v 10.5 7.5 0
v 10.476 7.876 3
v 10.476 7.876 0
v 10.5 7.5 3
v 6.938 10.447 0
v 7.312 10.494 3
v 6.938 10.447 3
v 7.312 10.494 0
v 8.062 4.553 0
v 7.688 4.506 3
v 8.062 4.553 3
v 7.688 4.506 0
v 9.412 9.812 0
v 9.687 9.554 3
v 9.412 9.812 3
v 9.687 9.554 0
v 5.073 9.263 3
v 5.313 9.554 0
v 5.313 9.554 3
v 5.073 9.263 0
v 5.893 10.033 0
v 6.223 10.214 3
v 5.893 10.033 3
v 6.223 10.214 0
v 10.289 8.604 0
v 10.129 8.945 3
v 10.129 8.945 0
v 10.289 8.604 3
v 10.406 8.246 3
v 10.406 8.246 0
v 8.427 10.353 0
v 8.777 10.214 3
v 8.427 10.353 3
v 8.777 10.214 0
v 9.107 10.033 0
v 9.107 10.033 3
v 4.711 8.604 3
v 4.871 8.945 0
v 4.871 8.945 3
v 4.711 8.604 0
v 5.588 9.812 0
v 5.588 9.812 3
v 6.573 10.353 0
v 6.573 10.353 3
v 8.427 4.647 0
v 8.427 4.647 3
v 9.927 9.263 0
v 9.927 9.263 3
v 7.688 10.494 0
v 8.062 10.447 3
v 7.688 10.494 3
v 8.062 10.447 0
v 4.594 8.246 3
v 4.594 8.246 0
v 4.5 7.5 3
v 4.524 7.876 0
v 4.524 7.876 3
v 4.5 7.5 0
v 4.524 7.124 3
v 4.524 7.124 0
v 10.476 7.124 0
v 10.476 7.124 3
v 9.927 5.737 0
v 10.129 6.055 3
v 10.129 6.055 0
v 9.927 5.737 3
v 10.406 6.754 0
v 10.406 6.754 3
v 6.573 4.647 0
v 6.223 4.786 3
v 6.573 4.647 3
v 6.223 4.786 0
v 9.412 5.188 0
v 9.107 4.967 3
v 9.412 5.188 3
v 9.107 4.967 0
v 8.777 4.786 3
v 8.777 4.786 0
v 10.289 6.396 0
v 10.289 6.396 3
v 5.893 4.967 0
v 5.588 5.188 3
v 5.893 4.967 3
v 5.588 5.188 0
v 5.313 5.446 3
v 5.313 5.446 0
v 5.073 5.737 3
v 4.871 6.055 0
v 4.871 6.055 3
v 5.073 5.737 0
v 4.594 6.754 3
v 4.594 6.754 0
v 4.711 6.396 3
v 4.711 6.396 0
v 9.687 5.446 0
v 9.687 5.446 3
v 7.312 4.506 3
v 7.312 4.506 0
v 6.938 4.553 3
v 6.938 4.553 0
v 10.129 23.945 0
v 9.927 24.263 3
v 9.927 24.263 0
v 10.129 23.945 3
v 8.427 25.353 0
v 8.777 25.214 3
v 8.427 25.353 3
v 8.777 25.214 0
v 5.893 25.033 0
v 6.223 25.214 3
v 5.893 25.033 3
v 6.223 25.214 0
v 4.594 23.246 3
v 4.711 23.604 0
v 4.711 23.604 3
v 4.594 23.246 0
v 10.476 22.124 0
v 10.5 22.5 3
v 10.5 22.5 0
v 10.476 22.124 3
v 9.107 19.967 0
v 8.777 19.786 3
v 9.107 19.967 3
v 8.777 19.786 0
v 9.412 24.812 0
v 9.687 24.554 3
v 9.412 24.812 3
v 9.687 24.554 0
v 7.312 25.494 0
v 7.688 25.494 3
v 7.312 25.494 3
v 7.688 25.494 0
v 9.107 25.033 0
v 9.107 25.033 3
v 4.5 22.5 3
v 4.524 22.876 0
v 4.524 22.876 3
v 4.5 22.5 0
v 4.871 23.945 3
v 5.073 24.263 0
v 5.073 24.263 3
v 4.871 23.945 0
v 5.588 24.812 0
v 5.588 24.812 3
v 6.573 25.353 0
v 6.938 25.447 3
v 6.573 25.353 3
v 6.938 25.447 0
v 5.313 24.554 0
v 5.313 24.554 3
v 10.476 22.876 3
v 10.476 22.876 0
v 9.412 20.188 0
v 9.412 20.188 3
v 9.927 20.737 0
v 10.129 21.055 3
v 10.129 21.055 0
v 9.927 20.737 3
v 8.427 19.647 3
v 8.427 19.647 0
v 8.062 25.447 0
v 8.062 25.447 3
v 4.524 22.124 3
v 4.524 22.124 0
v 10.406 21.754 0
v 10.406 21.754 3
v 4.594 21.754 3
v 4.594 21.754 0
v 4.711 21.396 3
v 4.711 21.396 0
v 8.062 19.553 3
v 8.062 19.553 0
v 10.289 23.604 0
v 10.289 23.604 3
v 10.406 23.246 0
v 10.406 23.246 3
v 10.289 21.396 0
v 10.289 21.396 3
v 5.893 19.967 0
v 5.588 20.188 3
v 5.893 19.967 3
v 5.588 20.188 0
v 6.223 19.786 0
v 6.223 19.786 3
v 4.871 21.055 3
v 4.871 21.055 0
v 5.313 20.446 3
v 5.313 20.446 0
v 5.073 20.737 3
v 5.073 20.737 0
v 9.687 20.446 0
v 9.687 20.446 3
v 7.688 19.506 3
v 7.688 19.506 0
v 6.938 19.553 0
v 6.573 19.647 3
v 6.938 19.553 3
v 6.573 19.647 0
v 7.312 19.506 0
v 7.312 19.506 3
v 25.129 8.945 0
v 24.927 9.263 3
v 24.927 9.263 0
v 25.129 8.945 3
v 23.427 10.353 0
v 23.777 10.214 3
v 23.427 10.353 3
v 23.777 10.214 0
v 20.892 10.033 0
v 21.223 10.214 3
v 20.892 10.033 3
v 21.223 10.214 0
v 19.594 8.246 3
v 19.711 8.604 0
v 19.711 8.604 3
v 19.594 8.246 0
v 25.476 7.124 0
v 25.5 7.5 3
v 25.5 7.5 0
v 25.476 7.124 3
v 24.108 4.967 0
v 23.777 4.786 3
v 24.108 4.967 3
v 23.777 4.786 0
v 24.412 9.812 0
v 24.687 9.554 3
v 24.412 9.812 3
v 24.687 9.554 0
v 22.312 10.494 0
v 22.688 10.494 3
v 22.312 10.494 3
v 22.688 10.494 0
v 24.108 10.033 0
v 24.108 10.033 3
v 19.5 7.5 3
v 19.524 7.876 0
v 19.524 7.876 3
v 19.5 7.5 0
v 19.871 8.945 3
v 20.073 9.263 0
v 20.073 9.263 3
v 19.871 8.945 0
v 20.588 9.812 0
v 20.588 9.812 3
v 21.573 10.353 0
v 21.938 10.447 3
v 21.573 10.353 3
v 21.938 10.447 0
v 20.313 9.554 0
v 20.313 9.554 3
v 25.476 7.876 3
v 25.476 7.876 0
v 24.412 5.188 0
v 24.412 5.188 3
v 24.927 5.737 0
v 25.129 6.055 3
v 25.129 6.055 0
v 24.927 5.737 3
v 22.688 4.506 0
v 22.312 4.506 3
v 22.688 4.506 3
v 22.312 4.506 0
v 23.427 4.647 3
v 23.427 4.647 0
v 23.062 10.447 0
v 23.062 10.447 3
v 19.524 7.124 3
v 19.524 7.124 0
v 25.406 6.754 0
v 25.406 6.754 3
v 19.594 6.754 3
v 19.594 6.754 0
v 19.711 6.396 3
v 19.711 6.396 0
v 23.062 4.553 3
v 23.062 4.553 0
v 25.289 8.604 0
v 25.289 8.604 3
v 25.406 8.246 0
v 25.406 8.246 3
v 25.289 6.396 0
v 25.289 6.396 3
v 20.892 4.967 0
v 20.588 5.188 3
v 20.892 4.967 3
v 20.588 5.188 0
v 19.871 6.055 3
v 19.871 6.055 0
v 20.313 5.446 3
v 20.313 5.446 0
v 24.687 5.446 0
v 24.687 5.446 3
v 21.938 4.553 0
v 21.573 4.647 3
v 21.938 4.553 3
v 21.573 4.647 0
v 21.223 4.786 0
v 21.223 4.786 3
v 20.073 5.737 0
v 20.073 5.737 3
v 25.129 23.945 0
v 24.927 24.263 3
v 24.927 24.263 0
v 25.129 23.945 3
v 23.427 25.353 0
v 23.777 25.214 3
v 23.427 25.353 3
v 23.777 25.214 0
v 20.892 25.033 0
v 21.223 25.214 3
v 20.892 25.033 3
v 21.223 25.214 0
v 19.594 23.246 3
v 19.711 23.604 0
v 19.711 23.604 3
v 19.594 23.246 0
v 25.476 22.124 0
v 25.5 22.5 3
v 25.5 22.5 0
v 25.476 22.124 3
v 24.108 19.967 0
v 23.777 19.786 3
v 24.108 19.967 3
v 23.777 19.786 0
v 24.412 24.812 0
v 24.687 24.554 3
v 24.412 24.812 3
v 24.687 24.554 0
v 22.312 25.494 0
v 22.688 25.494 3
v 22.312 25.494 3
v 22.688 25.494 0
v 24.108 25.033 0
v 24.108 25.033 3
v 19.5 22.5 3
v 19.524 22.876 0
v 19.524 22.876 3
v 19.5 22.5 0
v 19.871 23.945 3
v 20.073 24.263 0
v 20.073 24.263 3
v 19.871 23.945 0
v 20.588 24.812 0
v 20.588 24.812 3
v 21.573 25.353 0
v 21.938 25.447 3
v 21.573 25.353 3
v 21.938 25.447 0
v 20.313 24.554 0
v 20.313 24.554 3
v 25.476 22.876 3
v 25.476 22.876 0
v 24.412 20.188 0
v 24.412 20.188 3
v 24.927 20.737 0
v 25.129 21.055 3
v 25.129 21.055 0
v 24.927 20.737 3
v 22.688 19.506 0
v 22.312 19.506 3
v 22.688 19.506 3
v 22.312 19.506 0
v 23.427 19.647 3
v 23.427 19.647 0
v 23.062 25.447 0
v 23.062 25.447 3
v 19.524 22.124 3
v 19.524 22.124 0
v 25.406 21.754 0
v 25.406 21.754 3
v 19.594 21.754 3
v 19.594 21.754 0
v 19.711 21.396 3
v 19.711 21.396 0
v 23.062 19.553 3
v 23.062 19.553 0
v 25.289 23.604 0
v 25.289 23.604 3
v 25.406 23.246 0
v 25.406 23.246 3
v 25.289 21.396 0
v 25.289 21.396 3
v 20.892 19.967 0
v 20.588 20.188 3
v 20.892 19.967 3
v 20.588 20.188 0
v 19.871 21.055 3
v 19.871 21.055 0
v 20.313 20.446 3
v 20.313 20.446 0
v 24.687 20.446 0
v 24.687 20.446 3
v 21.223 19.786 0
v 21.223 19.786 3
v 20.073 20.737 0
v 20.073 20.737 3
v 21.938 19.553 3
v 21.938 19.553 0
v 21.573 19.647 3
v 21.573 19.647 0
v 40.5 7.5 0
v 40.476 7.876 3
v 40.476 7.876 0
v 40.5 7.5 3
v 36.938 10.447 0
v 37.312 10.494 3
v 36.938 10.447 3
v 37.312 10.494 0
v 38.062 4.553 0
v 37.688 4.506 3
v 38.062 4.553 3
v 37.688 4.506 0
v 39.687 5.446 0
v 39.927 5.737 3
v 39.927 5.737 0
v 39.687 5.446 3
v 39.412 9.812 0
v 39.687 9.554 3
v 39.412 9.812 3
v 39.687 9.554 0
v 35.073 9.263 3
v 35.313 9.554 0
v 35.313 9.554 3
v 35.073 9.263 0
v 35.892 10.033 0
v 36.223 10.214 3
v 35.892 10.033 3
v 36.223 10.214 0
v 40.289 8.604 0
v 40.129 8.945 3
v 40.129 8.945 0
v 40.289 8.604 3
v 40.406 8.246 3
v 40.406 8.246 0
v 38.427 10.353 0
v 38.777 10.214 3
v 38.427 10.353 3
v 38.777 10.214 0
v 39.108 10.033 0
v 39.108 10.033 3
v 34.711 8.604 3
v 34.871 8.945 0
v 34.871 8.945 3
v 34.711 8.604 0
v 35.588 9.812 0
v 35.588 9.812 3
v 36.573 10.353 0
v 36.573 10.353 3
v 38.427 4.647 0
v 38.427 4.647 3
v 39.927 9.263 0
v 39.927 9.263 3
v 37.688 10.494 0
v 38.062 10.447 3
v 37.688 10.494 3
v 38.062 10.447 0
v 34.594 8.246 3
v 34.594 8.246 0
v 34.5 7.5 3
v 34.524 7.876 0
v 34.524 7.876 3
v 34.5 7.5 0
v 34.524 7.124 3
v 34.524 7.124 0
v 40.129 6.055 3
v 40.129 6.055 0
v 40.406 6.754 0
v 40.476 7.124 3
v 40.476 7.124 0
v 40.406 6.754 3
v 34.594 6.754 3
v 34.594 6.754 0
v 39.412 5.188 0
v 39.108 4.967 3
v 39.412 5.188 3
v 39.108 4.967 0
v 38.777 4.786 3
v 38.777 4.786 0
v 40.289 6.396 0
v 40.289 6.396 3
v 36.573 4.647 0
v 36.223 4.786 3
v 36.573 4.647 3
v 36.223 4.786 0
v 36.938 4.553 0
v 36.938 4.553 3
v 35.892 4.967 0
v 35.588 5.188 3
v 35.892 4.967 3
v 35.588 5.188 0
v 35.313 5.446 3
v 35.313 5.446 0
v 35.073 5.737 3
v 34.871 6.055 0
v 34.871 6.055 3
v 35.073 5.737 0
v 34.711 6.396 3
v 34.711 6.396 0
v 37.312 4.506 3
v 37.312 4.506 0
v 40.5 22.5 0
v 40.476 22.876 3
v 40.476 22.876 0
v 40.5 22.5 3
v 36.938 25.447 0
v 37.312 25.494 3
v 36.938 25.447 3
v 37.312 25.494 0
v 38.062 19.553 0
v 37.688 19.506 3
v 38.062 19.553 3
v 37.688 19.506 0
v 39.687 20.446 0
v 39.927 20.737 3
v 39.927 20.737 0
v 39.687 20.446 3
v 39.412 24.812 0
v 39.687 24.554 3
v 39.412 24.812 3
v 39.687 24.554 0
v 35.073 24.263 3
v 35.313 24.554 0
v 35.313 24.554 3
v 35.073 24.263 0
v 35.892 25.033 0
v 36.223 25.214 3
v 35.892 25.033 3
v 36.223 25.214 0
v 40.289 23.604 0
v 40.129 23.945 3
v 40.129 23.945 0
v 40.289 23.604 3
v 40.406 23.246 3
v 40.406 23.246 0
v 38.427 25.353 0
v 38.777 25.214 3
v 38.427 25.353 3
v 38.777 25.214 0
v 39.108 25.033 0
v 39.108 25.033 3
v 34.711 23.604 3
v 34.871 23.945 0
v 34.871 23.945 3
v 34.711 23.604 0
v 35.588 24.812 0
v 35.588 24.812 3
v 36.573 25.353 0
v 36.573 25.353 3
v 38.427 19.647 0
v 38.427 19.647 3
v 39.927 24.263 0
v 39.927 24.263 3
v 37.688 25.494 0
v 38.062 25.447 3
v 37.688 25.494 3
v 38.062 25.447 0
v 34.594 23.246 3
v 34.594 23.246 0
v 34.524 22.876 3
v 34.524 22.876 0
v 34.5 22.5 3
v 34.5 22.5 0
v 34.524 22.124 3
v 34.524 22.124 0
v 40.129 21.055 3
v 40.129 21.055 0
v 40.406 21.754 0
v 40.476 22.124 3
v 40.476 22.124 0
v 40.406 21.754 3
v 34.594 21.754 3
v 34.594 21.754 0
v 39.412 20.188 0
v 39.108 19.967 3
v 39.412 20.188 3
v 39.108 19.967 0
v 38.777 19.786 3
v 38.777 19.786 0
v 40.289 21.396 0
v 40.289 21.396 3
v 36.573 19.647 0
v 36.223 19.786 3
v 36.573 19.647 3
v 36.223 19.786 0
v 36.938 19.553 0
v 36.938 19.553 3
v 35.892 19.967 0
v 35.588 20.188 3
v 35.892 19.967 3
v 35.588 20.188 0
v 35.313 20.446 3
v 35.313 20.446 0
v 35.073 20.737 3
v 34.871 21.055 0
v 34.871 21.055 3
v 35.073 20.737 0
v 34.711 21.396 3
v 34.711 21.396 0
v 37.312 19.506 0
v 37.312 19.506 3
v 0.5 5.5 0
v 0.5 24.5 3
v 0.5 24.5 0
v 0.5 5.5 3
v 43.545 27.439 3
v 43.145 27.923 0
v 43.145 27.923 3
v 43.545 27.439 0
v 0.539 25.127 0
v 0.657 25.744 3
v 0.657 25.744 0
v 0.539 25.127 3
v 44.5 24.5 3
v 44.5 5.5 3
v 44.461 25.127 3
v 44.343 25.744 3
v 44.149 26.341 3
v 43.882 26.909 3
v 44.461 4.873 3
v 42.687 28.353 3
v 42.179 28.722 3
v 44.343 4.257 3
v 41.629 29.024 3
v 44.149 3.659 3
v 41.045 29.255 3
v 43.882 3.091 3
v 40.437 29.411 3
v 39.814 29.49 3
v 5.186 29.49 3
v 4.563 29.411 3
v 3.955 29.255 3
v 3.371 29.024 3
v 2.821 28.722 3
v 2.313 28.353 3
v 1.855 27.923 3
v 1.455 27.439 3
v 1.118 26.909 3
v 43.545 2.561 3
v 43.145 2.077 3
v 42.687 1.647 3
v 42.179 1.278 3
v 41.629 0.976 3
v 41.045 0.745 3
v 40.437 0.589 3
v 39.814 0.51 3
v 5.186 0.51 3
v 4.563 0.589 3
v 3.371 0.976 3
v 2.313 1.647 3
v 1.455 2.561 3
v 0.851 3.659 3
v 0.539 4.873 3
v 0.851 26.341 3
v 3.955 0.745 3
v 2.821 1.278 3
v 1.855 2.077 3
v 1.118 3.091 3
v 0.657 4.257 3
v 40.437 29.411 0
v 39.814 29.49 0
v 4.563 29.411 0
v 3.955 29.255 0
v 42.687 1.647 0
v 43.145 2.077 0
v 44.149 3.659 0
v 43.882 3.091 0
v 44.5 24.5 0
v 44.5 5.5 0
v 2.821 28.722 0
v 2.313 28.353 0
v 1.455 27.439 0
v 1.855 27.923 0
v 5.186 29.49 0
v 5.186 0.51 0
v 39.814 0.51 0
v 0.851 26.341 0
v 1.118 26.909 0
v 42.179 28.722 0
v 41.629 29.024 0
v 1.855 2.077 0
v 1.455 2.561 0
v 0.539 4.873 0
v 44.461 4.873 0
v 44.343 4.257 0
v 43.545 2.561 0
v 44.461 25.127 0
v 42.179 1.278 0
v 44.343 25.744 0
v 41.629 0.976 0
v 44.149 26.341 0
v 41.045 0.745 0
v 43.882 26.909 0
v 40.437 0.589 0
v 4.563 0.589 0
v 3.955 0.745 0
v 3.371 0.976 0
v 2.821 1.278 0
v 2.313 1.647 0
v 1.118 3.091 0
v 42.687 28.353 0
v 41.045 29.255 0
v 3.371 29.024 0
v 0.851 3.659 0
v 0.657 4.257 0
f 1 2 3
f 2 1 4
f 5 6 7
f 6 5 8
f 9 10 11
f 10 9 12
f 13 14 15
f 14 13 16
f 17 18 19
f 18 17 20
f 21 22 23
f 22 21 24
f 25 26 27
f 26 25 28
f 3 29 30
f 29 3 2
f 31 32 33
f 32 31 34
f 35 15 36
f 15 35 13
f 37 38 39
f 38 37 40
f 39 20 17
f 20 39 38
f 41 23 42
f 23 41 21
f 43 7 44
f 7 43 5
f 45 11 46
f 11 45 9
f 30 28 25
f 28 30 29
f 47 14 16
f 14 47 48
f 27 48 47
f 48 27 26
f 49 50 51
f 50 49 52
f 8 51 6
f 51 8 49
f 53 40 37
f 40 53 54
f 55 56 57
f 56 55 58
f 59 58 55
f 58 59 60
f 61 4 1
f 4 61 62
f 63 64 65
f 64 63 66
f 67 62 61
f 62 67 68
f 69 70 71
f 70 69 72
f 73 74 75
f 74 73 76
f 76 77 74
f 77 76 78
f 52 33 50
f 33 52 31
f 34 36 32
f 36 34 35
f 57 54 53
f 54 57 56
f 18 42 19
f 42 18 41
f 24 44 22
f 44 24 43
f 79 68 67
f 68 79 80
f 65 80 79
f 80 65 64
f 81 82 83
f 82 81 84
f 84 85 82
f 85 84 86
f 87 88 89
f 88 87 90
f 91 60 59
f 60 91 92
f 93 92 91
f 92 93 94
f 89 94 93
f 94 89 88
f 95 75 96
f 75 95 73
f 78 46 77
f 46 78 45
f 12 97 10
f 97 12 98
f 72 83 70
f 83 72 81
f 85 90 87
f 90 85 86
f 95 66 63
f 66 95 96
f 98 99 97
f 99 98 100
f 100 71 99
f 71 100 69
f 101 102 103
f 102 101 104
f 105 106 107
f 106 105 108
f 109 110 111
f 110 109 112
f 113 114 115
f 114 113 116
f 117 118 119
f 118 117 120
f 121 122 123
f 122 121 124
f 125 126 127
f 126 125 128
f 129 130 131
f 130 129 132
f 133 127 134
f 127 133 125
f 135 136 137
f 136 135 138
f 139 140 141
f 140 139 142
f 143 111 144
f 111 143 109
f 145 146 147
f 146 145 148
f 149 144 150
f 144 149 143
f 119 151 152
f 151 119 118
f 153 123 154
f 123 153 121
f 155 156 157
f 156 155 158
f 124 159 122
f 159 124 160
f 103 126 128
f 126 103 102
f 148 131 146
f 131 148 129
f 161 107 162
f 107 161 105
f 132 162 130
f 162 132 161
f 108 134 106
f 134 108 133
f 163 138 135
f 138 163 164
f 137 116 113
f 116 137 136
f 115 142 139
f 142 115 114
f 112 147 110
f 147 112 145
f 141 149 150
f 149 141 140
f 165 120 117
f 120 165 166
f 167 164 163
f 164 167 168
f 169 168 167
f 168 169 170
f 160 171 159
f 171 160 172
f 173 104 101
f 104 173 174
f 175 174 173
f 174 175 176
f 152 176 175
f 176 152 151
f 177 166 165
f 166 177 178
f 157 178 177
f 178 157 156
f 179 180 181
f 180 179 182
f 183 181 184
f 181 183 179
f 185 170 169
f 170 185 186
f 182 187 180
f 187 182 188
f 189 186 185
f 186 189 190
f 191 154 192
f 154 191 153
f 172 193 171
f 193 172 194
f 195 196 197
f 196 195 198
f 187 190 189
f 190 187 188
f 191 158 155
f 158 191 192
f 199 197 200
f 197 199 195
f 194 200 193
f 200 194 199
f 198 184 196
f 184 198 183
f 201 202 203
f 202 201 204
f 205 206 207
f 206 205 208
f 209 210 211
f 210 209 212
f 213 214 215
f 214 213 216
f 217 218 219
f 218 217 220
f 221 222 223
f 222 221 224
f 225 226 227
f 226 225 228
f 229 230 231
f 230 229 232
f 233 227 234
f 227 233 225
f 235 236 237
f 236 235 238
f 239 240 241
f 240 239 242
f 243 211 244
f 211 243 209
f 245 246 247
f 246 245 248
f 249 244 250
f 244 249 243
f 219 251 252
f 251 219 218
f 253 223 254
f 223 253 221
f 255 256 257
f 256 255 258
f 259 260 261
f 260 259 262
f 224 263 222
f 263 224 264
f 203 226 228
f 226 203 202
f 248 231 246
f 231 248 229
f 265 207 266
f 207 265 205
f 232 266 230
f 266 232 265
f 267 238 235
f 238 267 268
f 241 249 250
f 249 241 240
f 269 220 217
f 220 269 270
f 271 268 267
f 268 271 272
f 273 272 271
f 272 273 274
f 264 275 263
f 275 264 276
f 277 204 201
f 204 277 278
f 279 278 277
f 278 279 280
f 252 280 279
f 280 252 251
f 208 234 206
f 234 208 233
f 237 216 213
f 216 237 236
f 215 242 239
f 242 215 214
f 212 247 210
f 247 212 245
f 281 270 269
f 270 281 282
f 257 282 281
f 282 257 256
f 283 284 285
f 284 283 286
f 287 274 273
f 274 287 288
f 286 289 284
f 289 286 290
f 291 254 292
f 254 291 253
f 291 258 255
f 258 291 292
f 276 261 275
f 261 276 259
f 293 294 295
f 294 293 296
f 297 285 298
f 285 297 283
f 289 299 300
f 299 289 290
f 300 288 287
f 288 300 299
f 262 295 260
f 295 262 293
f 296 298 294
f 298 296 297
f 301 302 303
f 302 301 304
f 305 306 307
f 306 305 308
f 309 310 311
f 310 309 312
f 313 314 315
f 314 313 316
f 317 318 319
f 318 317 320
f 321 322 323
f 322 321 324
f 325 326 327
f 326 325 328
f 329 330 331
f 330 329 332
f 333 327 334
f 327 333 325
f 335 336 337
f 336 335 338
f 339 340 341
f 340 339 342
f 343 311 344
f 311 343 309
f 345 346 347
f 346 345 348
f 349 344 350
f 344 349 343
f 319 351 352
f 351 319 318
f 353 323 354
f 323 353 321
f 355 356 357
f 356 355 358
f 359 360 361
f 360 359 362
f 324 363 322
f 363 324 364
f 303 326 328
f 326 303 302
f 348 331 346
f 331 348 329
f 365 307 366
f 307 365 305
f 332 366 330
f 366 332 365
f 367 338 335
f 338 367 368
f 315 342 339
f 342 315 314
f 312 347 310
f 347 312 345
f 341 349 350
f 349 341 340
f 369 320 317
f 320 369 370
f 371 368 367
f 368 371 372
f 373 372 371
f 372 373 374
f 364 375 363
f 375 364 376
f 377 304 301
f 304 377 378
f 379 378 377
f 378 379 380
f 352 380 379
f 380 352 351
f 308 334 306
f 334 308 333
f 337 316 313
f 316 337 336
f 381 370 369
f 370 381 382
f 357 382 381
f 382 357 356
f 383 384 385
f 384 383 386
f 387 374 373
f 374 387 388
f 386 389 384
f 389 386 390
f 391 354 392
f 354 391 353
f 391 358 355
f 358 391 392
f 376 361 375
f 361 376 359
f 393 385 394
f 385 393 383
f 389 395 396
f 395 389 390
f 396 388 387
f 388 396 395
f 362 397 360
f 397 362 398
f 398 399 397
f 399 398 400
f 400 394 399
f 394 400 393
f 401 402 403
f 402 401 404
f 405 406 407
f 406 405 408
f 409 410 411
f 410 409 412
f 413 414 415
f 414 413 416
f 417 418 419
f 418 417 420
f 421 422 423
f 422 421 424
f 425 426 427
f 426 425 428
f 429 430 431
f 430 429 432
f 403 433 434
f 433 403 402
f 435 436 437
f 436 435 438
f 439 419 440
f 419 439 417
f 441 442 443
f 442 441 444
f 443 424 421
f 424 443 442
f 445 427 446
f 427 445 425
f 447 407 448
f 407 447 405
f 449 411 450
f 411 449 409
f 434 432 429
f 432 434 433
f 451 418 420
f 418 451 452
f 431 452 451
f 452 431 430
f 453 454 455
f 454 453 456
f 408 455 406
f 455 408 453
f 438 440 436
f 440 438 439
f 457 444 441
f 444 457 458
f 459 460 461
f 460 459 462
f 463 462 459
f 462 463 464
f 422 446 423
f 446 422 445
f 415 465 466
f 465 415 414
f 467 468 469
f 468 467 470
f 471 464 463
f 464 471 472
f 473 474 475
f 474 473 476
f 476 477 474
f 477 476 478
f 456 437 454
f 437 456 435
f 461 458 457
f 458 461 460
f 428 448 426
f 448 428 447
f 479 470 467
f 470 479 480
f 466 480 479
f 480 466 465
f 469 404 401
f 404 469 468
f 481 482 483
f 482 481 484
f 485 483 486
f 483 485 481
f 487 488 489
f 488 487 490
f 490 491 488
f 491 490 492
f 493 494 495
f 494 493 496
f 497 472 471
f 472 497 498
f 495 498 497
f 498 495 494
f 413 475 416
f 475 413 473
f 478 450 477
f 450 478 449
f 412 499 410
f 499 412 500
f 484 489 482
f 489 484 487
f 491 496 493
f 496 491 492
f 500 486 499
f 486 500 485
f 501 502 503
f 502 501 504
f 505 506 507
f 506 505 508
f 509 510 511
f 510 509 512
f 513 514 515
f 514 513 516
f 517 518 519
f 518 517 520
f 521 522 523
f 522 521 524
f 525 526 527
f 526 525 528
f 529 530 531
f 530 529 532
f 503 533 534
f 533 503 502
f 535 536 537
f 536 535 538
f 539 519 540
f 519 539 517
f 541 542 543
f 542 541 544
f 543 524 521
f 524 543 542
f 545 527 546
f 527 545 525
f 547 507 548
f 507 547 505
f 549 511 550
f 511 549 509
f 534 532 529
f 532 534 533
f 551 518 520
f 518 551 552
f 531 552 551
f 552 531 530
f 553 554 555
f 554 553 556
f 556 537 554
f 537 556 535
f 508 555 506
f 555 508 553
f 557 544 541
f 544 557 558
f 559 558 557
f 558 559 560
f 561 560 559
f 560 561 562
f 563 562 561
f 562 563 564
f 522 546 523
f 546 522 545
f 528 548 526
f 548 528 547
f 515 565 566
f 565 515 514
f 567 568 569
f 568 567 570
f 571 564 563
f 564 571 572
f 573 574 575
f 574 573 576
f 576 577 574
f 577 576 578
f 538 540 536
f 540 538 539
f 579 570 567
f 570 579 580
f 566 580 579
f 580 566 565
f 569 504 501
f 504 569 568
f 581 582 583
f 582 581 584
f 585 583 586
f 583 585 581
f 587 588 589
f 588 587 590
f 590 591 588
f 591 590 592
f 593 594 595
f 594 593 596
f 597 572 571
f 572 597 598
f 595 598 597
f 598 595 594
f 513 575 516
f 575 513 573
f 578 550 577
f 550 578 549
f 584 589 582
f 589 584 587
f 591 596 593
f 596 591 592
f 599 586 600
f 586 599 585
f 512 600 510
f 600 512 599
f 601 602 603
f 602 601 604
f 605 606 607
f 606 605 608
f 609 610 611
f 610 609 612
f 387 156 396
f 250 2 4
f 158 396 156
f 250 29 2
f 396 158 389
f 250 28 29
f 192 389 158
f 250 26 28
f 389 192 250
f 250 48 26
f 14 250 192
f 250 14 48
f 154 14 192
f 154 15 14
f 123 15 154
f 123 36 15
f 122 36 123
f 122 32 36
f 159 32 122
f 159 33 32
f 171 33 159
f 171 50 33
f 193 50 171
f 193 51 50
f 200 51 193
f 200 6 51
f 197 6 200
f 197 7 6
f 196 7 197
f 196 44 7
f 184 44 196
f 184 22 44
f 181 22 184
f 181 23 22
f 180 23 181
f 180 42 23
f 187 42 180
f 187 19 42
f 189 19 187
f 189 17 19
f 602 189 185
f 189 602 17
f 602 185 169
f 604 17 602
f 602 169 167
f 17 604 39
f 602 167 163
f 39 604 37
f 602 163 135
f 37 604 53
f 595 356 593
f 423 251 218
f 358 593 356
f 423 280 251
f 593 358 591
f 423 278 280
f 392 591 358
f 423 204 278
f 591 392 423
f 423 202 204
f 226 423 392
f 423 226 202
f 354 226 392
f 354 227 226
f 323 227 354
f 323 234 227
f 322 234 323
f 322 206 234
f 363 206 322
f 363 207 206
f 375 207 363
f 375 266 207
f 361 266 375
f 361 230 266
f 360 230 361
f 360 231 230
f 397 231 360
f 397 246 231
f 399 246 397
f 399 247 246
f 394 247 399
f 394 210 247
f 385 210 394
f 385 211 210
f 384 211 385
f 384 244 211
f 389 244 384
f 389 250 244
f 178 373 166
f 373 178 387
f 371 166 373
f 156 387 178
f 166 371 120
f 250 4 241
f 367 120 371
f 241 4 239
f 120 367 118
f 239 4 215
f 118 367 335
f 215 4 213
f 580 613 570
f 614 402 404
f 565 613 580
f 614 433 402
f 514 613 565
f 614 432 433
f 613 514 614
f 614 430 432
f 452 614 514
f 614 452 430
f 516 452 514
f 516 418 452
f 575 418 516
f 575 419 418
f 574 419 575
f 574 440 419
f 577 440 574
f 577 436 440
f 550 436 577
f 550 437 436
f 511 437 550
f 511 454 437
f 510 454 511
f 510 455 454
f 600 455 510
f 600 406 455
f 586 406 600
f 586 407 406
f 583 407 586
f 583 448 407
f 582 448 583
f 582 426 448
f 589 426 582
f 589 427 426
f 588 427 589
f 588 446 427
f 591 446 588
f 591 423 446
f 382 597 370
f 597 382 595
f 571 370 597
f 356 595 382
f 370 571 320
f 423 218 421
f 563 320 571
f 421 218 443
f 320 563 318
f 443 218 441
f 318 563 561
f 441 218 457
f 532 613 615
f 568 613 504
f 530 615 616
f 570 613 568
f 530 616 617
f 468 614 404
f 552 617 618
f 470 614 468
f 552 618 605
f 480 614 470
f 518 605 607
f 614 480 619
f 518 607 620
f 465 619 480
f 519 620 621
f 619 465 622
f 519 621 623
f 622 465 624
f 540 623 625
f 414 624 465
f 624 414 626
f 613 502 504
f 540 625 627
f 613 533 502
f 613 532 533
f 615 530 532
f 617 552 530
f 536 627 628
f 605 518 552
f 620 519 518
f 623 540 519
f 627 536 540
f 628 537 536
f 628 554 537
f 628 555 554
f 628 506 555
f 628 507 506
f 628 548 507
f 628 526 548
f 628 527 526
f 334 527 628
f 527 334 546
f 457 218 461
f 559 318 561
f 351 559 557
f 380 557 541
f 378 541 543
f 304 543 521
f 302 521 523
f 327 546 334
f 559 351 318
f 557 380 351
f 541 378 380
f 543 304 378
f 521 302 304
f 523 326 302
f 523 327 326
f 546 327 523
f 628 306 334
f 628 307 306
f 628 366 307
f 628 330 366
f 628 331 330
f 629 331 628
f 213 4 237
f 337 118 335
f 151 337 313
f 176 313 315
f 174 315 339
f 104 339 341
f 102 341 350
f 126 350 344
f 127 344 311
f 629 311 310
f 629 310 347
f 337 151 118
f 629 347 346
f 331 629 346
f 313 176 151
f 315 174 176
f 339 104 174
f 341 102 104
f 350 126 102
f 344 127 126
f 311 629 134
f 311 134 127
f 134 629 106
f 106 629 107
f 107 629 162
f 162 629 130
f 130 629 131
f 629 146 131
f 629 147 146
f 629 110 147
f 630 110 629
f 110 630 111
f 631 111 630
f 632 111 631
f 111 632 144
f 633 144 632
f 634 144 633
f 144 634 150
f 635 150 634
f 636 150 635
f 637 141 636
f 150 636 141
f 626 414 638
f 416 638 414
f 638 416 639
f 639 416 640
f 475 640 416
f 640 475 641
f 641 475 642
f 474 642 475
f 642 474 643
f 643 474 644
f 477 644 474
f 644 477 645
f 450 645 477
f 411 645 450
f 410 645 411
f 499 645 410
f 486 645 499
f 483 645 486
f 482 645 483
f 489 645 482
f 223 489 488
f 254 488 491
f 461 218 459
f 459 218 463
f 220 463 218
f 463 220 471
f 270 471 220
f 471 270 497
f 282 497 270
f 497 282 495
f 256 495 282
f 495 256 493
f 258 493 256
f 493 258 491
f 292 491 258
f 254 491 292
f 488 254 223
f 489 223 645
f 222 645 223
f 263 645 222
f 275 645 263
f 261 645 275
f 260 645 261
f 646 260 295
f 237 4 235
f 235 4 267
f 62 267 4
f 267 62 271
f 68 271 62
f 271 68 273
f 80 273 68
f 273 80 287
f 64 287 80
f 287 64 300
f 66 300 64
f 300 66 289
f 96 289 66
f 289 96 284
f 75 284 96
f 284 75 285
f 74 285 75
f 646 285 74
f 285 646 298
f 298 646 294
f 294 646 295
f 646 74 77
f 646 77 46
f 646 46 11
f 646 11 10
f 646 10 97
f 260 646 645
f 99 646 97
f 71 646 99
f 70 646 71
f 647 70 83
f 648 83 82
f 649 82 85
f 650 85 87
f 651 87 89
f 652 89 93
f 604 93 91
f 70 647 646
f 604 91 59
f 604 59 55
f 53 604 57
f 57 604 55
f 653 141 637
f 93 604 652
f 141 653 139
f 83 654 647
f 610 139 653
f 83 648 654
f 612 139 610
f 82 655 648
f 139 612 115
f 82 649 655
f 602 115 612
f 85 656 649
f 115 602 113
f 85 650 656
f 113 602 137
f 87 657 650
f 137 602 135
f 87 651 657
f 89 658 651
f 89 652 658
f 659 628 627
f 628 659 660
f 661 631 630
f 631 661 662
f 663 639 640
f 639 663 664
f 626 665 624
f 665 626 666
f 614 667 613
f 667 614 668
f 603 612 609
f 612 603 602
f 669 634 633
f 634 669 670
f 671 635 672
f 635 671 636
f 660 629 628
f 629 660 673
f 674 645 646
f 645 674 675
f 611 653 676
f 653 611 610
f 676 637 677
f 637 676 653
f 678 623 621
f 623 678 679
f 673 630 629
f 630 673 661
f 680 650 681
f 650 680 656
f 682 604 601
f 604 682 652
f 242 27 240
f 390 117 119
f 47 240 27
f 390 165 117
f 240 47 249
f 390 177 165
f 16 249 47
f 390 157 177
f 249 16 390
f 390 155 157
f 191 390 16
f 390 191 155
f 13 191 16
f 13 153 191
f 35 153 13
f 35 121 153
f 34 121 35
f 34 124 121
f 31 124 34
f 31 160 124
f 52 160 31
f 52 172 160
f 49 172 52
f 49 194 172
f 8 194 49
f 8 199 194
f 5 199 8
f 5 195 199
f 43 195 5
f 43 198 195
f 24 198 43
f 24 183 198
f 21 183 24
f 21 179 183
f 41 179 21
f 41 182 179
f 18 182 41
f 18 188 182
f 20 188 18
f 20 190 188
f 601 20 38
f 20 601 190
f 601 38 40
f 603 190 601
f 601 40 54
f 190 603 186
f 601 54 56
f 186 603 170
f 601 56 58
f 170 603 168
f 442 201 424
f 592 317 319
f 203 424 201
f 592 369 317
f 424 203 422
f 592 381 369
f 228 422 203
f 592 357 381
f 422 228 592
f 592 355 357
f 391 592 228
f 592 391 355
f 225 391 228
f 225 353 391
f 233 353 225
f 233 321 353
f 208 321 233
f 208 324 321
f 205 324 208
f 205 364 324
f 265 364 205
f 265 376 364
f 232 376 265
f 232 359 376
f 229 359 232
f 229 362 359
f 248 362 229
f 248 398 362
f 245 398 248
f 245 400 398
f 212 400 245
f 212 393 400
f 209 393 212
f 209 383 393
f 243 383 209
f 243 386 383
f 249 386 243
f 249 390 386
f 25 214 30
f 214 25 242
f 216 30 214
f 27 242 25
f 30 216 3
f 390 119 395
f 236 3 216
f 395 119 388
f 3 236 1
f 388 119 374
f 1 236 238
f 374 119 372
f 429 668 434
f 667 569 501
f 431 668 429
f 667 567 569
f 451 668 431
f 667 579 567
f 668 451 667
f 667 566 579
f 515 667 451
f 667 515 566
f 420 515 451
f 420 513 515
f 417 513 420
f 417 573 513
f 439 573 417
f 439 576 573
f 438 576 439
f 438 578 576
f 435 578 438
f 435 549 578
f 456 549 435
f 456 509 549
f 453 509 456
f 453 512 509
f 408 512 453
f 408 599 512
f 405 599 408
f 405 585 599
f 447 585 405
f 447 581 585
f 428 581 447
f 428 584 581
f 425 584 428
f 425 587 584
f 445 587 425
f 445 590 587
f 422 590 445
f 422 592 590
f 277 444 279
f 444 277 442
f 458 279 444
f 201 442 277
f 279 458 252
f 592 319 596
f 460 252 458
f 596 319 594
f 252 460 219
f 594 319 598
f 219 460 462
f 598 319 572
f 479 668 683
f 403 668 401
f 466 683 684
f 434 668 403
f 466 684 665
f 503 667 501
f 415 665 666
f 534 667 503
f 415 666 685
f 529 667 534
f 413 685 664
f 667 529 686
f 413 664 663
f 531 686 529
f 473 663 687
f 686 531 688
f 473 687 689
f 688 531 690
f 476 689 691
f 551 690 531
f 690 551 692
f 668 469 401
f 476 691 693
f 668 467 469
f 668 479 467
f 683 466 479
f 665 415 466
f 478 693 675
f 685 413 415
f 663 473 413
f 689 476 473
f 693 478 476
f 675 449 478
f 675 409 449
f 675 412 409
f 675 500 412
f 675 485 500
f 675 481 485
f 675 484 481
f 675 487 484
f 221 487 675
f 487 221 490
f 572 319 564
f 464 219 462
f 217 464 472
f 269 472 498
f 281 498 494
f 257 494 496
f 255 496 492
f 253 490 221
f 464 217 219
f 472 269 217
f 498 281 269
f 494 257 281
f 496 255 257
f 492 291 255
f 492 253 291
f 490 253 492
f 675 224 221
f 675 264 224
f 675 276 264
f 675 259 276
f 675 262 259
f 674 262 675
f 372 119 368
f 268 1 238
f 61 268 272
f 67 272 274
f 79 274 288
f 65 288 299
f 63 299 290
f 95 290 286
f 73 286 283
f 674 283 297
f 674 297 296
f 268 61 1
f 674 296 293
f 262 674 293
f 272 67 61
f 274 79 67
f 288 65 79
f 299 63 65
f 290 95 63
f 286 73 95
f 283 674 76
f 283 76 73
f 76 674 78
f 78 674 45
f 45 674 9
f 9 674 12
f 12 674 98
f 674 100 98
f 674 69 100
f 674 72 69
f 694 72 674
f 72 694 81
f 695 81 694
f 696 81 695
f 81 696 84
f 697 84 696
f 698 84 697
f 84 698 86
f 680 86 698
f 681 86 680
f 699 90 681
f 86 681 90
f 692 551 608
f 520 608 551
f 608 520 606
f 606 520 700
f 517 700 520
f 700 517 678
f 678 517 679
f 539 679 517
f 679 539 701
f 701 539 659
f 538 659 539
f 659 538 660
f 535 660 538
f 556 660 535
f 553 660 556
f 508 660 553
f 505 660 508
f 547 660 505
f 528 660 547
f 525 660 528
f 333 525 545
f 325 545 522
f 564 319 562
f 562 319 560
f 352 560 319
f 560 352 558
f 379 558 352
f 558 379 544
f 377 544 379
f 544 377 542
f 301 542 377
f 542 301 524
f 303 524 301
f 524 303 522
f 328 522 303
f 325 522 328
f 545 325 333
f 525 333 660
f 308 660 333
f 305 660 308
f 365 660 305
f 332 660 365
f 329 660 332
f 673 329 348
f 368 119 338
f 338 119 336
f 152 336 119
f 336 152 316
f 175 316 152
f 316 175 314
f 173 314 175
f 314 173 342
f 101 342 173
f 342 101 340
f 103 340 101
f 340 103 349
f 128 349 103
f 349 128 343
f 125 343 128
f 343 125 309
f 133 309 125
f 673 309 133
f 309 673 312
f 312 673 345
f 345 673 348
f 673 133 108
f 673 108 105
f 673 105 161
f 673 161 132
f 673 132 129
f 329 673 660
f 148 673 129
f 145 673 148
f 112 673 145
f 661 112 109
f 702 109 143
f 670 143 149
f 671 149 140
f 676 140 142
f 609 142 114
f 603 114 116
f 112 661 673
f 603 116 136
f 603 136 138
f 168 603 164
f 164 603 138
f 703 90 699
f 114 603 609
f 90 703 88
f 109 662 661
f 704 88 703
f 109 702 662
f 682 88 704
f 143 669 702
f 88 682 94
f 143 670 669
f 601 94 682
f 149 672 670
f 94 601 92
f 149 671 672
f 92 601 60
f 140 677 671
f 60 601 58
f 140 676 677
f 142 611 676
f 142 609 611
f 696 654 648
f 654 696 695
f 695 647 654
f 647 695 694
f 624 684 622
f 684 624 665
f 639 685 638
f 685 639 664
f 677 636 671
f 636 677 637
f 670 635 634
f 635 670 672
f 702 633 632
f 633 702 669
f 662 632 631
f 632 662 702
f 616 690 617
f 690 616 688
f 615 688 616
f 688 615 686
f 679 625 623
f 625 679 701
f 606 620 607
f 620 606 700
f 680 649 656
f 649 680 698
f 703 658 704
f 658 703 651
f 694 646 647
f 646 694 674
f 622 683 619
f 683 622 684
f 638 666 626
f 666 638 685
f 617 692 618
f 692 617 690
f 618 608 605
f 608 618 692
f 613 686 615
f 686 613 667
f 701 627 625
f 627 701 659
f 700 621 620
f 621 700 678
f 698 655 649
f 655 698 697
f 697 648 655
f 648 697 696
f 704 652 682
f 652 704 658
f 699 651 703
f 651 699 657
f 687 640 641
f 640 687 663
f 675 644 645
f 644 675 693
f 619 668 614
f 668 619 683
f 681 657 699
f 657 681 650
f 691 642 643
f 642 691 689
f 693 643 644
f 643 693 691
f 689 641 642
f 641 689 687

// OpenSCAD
// Generated by SolidPython 1.1.3 on 2023-01-30 13:25:36
$fn = 50;


difference() {
	union() {
		translate(v = [22.5000000000, 15.0000000000, 0]) {
			rotate(a = [0, 0, 0]) {
				hull() {
					translate(v = [-17.0000000000, 9.5000000000, 0]) {
						rotate(a = [0, 0, 0]) {
							translate(v = [0, 0, 0]) {
								rotate(a = [0, 0, 0]) {
									cylinder(h = 3, r = 5);
								}
							}
						}
					}
					translate(v = [17.0000000000, 9.5000000000, 0]) {
						rotate(a = [0, 0, 0]) {
							translate(v = [0, 0, 0]) {
								rotate(a = [0, 0, 0]) {
									cylinder(h = 3, r = 5);
								}
							}
						}
					}
					translate(v = [-17.0000000000, -9.5000000000, 0]) {
						rotate(a = [0, 0, 0]) {
							translate(v = [0, 0, 0]) {
								rotate(a = [0, 0, 0]) {
									cylinder(h = 3, r = 5);
								}
							}
						}
					}
					translate(v = [17.0000000000, -9.5000000000, 0]) {
						rotate(a = [0, 0, 0]) {
							translate(v = [0, 0, 0]) {
								rotate(a = [0, 0, 0]) {
									cylinder(h = 3, r = 5);
								}
							}
						}
					}
				}
			}
		}
	}
	union() {
		translate(v = [7.5000000000, 7.5000000000, 0]) {
			rotate(a = [0, 0, 0]) {
				translate(v = [0, 0, -50]) {
					rotate(a = [0, 0, 0]) {
						cylinder(h = 100, r = 3.0000000000);
					}
				}
			}
		}
		translate(v = [7.5000000000, 22.5000000000, 0]) {
			rotate(a = [0, 0, 0]) {
				translate(v = [0, 0, -50]) {
					rotate(a = [0, 0, 0]) {
						cylinder(h = 100, r = 3.0000000000);
					}
				}
			}
		}
		translate(v = [22.5000000000, 7.5000000000, 0]) {
			rotate(a = [0, 0, 0]) {
				translate(v = [0, 0, -50]) {
					rotate(a = [0, 0, 0]) {
						cylinder(h = 100, r = 3.0000000000);
					}
				}
			}
		}
		translate(v = [22.5000000000, 22.5000000000, 0]) {
			rotate(a = [0, 0, 0]) {
				translate(v = [0, 0, -50]) {
					rotate(a = [0, 0, 0]) {
						cylinder(h = 100, r = 3.0000000000);
					}
				}
			}
		}
		translate(v = [37.5000000000, 7.5000000000, 0]) {
			rotate(a = [0, 0, 0]) {
				translate(v = [0, 0, -50]) {
					rotate(a = [0, 0, 0]) {
						cylinder(h = 100, r = 3.0000000000);
					}
				}
			}
		}
		translate(v = [37.5000000000, 22.5000000000, 0]) {
			rotate(a = [0, 0, 0]) {
				translate(v = [0, 0, -50]) {
					rotate(a = [0, 0, 0]) {
						cylinder(h = 100, r = 3.0000000000);
					}
				}
			}
		}
	}
}
/***********************************************
*********      SolidPython code:      **********
************************************************
 
from solid import *
import os
import subprocess

import oomB

import opsc_library_gen

mode = "laser"
#mode = "3d_print"

defined_objects = {}

radius_dict = {}
countersunk_dict = {}


def set_mode(m):
    global mode
    mode = m
    radius_dict['M6'] = 6.5/2
    radius_dict['M3'] = 3.3/2
    if mode == "laser":
        radius_dict['M6'] = 6/2
        radius_dict['M3'] = 3/2

    countersunk_dict['M3'] = {}
    countersunk_dict['M3']['little_rad'] = radius_dict['M3']
    countersunk_dict['M3']['big_rad'] = (5.5+0.6)/2
    if mode == "laser":
        countersunk_dict['M3']['big_rad'] = (4.75+0.6)/2
        countersunk_dict['M3']['little_rad'] = (4.75+0.6)/2

    countersunk_dict['M3']['height'] = 1.7


def opsc_make_object(filename, objects, save_type="none",resolution=50, layers = 1, tilediff = 200, mode="laser"):
    set_mode(mode)
    save_type = save_type.lower()
    os.makedirs(os.path.dirname(filename), exist_ok=True)
    final_object = opsc_get_object(objects)
    # Save the final object to the specified filename    
    scad_render_to_file(final_object, filename, file_header='$fn = %s;' % resolution, include_orig_code=True)
    if mode == "laser":
        filename_laser = filename.replace(".scad","-flat.scad")
        scad_render_to_file(getLaser(final_object, layers=layers, tilediff=tilediff), filename_laser, file_header='$fn = %s;' % resolution, include_orig_code=True)
        if save_type == "all":
            saveToAll(filename_laser)
        elif save_type == "dxf":
            saveToDxf(filename_laser)
    if save_type == "all":
        saveToAll(filename)
    elif save_type == "dxf":
        saveToDxf(filename)


def opsc_get_object(objects):
    # Create the solidpython objects
    positive_objects = [get_opsc_item(obj) for obj in objects if obj['type'] == 'positive']
    negative_objects = [get_opsc_item(obj) for obj in objects if obj['type'] == 'negative']
    # Union the positive objects
    positive_object = union()(*positive_objects)
    # Union the negative objects
    negative_object = union()(*negative_objects)
    # Create the final object by subtracting the negative objects from the positive objects
    return difference()(positive_object, negative_object)

def get_opsc_item(params):
    # A dictionary to map radius string values to numerical values
    #radius_dict = {'small': 5, 'medium': 10, 'large': 15}
    # An array of function names for basic shapes
    basic_shapes = ['cube', 'sphere', 'cylinder']
    
    # An array of function names for other shapes
    other_shapes = ['hole', 'slot', 'rounded_rectangle', 'countersunk']
    


    # Convert radius to r if present, and remove radius from the params dictionary
    if 'radius' in params:
        if isinstance(params['radius'], str):
            # Use the radius_dict to map the radius string value to a numerical value
            params['r'] = radius_dict[params['radius']]
        else:
            params['r'] = params['radius']
        del params['radius']
    

    # Check if the object type is a basic shape
    if params['shape'] in basic_shapes:
        # Remove shape and unexpected dictionary values
        allowed_keys = {'size', 'r', 'r1', 'r2', 'd', 'h', 'rw', 'rh', 'dw', 'dh'}
        shape_params = {k: v for k, v in params.items() if k in allowed_keys}

        # Call the corresponding function for the shape parameter, using ** notation to pass the shape_params dictionary as keyword arguments
        return get_opsc_transform(params,globals()[params['shape']](**shape_params))
    
    # If the object type is not a basic shape, check if it's a defined object or one of the other shapes
    elif params['shape'] in other_shapes:
        # Call the corresponding function for the shape parameter, passing the params dictionary as an argument
        p2 = copy.deepcopy(params)
        p2["pos"] = [0,0,0]
        return get_opsc_transform(params,globals()[params['shape']](p2))
    
    # If the object is not a basic shape or a defined object, try to import it from a .scad file
    else:
        obj = defined_objects[params['shape']]
        return get_opsc_transform(params,obj)

def get_opsc_transform(params, solid_obj):
    # Rotate the object based on the 'rot' field in the params dictionary, or the 'rotX', 'rotY', and 'rotZ' fields if 'rot' is not present
    rot = params.get('rot', [])
    if rot:
        rotX, rotY, rotZ = rot
    else:
        rotX = params.get('rotX', 0)
        rotY = params.get('rotY', 0)
        rotZ = params.get('rotZ', 0)
    solid_obj = rotate([rotX, rotY, rotZ])(solid_obj)

    # Translate the object based on the 'pos' field in the params dictionary, or the 'x', 'y', and 'z' fields if 'pos' is not present
    pos = params.get('pos', [])
    if pos:
        x, y, z = pos
    else:
        x = params.get('x', 0)
        y = params.get('y', 0)
        z = params.get('z', 0)
    solid_obj = translate([x, y, z])(solid_obj)
    return solid_obj


import random

def opsc_easy_array(type, shape, repeats, pos_start, shift_arr, **kwargs):
    for i in range(0,3):
        repeats.append(1)
        pos_start.append(0)
        shift_arr.append(0)
    return_objects = []

    for x in range(0,repeats[0]):
        for y in range(0,repeats[1]):
            for z in range(0,repeats[2]):
                return_objects.append(opsc_easy(type, shape, pos=[pos_start[0]+x*shift_arr[0],pos_start[1]+y*shift_arr[1],pos_start[2]+z*shift_arr[2]], **kwargs))
    return return_objects                



def opsc_easy(type, shape, **kwargs):
    obj = {
        'type': type,
        'shape': shape
    }
    for param in ['size', 'r', 'r1', 'r2', 'd', 'h', 'rw', 'rh', 'dw', 'dh', 'pos', 'x', 'y', 'z', 'rot', 'rotX', 'rotY', 'rotZ', "w"]:
        if param in kwargs:
            obj[param] = kwargs[param]
    return obj

def hole(params):
    p2 = copy.deepcopy(params)  
    # Check if the radius is a string and replace it with the corresponding value from the dictionary
    if isinstance(p2['r'], str):
        p2['r'] = radius_dict[p2['r']]
    
    # Set the height to 100 if not specified
    if 'h' not in p2:
        p2['h'] = 100
        p2["pos"] = [0,0,-50]
    p2["center"] = True
    # Create the cylinder object
    p2["shape"] = "cylinder"
    p2["type"] = "positive"

    return get_opsc_item(p2)

import copy

def countersunk(params):
    p2 = copy.deepcopy(params)
    counter_rad = p2['r']
    p2['r'] = radius_dict[p2['r']]
    hp = copy.deepcopy(p2)
    hp["type"] = "positive"
    hp["shape"] = "hole"
    del hp["rot"]
    hol = get_opsc_item(hp)
    
    cp = copy.deepcopy(p2)
    cp["h"] = countersunk_dict[counter_rad]["height"]
    cp["r2"] = countersunk_dict[counter_rad]["little_rad"]
    cp["r1"] = countersunk_dict[counter_rad]["big_rad"]
    del cp["r"]
    del cp["rot"]
    cp["type"] = "positive"
    cp["shape"] = "cylinder"
    cp["pos"] = [0,0,0]

    top = get_opsc_item(cp)
    return union()(hol,top)



def slot(params):  
    p2 = copy.deepcopy(params) 
    if isinstance(p2['r'], str):
        p2['r'] = radius_dict[p2['r']]
    p2["type"] = "positive"
    p2["shape"] = "hole"
    del p2["rot"]
    p2["pos"] = [0,0,0]
    left = copy.deepcopy(p2)
    right = copy.deepcopy(p2)
    left["pos"][0] = p2["w"] / 2 - p2["r"] 
    
    right["pos"][0] = -p2["w"] / 2 + p2["r"] 
    pass
    leftObj = get_opsc_item(left)
    rightObj = get_opsc_item(right)
    return hull()(leftObj, rightObj)

def rounded_rectangle(params):   
    p2 = copy.deepcopy(params) 
    p2["h"] = p2["size"][2]
    p2["pos"] = p2.get("pos", [0, 0, 0]) 
    p2["type"] = "positive"
    p2["shape"] = "hole"
    p2["pos"] = [0,0,0]
    
    if 'rot' in p2:
        del p2["rot"]   
    if 'r' not in p2:
        p2["r"] = 5 
    tl = copy.deepcopy(p2)
    tr = copy.deepcopy(p2)
    bl = copy.deepcopy(p2)
    br = copy.deepcopy(p2)
    tl["pos"][0] = -(p2["size"][0] - p2["r"]*2)/2
    tl["pos"][1] = (p2["size"][1] - p2["r"]*2)/2
    tr["pos"][0] = (p2["size"][0] - p2["r"]*2)/2
    tr["pos"][1] = (p2["size"][1] - p2["r"]*2)/2
    bl["pos"][0] = -(p2["size"][0] - p2["r"]*2)/2
    bl["pos"][1] = -(p2["size"][1] - p2["r"]*2)/2
    br["pos"][0] = (p2["size"][0] - p2["r"]*2)/2
    br["pos"][1] = -(p2["size"][1] - p2["r"]*2)/2
    del tl["size"]
    del tr["size"]
    del bl["size"]
    del br["size"]
    tlo = get_opsc_item(tl)
    tro = get_opsc_item(tr)
    blo = get_opsc_item(bl)
    bro = get_opsc_item(br)    
    return hull()(tlo, tro, blo, bro)



def import_scad_object(filename):
    # Import the .scad file and convert it to a solidpython object
    #filename = "parts"
    obj = import_scad(filename)
    return obj.main()
    


import os
import solid as solidpython

# A dictionary to store the defined objects


def load_scad_objects():
    opsc_library_gen.gen_library(defined_objects)

import random

def test(num_objects):
    objects = []
    for i in range(num_objects):
        # Choose a random shape
        #shape = random.choice(['cube', 'sphere', 'cylinder', 'hole', 'slot', "rounded_rectangle"])
        shape = random.choice(["rounded_rectangle"])

        # Choose a random type
        type = random.choice(['positive', 'negative'])
        
        # Create an empty object dictionary
        obj = {'shape': shape, 'type': type}
        
        # Set shape-specific parameters
        if obj['shape'] in ['cube']:
            obj['size'] =  [random.uniform(5, 15), random.uniform(5, 15), random.uniform(5, 15)]
        if obj['shape'] in ['rounded_rectangle']:
            obj['size'] =  [random.uniform(5, 15), random.uniform(5, 15), random.uniform(5, 15)]
            obj['r'] = random.uniform(0.5, 5)
        elif obj['shape'] == 'sphere':
            obj['r'] = random.uniform(5, 15)
        elif obj['shape'] in ['cylinder', 'hole']:
            obj['r'] = random.uniform(0.5, 5)
            obj['h'] = random.uniform(5, 15)
        elif obj['shape'] == 'slot':
            obj['r'] = random.uniform(0.5, 5)
            obj['h'] = random.uniform(5, 15)
            obj['w'] = random.uniform(5, 15)
        
        # Set a random position and rotation
        obj['pos'] = [random.uniform(-20, 20), random.uniform(-20, 20), random.uniform(-20, 20)]
        obj['rot'] = [random.uniform(-180, 180), random.uniform(-180, 180), random.uniform(-180, 180)]
        
        # Add the object to the list
        objects.append(obj)
    return objects

####### old file saving
def saveToAll(fileIn):
    saveToDxf(fileIn)
    saveToPng(fileIn)
    saveToStl(fileIn)
    saveToSvg(fileIn)

def saveToDxf(fileIn, fileOut="", copy_to_laser=True):
    if fileOut == "":
        fileOut = fileIn.replace(".scad",".dxf")
    saveToFile(fileIn, fileOut)


    
def saveToPng(fileIn, fileOut="",extra="--render"):
    if fileOut == "":
        fileOut = fileIn.replace(".scad",".png")
    saveToFile(fileIn, fileOut)

def saveToStl(fileIn, fileOut=""):
    if fileOut == "":
        fileOut = fileIn.replace(".scad",".stl")
    saveToFile(fileIn, fileOut)
    
def saveToSvg(fileIn, fileOut=""):
    if fileOut == "":
        fileOut = fileIn.replace(".scad",".svg")
    saveToFile(fileIn, fileOut)

def saveToFile(fileIn, fileOut,extra=""):
    #extra = extra + " --colorscheme Tomorrow"

    launchStr = 'openscad -o "' + fileOut + '"' + extra + ' "' + fileIn + '"'
    if ".png" in fileOut:
        launchStr = launchStr + " --render"
    print("            saveToFile launch string: " + launchStr)
    subprocess.run(launchStr)
    x=0

def getLaser(final_object,start=1.5,layers=1,thickness=3,tilediff=200):
        rv= []

        for x in range(layers):
            rv.append(translate([0,x*tilediff,0])(
                    projection()(
                        intersection()(translate([-500,-500,start+x*thickness])(cube(size=[1000,1000,0.1])),
                            final_object
                        )
                    )
            )
            )
            
        return union()(rv)

set_mode("laser")
load_scad_objects() 
 
************************************************/
